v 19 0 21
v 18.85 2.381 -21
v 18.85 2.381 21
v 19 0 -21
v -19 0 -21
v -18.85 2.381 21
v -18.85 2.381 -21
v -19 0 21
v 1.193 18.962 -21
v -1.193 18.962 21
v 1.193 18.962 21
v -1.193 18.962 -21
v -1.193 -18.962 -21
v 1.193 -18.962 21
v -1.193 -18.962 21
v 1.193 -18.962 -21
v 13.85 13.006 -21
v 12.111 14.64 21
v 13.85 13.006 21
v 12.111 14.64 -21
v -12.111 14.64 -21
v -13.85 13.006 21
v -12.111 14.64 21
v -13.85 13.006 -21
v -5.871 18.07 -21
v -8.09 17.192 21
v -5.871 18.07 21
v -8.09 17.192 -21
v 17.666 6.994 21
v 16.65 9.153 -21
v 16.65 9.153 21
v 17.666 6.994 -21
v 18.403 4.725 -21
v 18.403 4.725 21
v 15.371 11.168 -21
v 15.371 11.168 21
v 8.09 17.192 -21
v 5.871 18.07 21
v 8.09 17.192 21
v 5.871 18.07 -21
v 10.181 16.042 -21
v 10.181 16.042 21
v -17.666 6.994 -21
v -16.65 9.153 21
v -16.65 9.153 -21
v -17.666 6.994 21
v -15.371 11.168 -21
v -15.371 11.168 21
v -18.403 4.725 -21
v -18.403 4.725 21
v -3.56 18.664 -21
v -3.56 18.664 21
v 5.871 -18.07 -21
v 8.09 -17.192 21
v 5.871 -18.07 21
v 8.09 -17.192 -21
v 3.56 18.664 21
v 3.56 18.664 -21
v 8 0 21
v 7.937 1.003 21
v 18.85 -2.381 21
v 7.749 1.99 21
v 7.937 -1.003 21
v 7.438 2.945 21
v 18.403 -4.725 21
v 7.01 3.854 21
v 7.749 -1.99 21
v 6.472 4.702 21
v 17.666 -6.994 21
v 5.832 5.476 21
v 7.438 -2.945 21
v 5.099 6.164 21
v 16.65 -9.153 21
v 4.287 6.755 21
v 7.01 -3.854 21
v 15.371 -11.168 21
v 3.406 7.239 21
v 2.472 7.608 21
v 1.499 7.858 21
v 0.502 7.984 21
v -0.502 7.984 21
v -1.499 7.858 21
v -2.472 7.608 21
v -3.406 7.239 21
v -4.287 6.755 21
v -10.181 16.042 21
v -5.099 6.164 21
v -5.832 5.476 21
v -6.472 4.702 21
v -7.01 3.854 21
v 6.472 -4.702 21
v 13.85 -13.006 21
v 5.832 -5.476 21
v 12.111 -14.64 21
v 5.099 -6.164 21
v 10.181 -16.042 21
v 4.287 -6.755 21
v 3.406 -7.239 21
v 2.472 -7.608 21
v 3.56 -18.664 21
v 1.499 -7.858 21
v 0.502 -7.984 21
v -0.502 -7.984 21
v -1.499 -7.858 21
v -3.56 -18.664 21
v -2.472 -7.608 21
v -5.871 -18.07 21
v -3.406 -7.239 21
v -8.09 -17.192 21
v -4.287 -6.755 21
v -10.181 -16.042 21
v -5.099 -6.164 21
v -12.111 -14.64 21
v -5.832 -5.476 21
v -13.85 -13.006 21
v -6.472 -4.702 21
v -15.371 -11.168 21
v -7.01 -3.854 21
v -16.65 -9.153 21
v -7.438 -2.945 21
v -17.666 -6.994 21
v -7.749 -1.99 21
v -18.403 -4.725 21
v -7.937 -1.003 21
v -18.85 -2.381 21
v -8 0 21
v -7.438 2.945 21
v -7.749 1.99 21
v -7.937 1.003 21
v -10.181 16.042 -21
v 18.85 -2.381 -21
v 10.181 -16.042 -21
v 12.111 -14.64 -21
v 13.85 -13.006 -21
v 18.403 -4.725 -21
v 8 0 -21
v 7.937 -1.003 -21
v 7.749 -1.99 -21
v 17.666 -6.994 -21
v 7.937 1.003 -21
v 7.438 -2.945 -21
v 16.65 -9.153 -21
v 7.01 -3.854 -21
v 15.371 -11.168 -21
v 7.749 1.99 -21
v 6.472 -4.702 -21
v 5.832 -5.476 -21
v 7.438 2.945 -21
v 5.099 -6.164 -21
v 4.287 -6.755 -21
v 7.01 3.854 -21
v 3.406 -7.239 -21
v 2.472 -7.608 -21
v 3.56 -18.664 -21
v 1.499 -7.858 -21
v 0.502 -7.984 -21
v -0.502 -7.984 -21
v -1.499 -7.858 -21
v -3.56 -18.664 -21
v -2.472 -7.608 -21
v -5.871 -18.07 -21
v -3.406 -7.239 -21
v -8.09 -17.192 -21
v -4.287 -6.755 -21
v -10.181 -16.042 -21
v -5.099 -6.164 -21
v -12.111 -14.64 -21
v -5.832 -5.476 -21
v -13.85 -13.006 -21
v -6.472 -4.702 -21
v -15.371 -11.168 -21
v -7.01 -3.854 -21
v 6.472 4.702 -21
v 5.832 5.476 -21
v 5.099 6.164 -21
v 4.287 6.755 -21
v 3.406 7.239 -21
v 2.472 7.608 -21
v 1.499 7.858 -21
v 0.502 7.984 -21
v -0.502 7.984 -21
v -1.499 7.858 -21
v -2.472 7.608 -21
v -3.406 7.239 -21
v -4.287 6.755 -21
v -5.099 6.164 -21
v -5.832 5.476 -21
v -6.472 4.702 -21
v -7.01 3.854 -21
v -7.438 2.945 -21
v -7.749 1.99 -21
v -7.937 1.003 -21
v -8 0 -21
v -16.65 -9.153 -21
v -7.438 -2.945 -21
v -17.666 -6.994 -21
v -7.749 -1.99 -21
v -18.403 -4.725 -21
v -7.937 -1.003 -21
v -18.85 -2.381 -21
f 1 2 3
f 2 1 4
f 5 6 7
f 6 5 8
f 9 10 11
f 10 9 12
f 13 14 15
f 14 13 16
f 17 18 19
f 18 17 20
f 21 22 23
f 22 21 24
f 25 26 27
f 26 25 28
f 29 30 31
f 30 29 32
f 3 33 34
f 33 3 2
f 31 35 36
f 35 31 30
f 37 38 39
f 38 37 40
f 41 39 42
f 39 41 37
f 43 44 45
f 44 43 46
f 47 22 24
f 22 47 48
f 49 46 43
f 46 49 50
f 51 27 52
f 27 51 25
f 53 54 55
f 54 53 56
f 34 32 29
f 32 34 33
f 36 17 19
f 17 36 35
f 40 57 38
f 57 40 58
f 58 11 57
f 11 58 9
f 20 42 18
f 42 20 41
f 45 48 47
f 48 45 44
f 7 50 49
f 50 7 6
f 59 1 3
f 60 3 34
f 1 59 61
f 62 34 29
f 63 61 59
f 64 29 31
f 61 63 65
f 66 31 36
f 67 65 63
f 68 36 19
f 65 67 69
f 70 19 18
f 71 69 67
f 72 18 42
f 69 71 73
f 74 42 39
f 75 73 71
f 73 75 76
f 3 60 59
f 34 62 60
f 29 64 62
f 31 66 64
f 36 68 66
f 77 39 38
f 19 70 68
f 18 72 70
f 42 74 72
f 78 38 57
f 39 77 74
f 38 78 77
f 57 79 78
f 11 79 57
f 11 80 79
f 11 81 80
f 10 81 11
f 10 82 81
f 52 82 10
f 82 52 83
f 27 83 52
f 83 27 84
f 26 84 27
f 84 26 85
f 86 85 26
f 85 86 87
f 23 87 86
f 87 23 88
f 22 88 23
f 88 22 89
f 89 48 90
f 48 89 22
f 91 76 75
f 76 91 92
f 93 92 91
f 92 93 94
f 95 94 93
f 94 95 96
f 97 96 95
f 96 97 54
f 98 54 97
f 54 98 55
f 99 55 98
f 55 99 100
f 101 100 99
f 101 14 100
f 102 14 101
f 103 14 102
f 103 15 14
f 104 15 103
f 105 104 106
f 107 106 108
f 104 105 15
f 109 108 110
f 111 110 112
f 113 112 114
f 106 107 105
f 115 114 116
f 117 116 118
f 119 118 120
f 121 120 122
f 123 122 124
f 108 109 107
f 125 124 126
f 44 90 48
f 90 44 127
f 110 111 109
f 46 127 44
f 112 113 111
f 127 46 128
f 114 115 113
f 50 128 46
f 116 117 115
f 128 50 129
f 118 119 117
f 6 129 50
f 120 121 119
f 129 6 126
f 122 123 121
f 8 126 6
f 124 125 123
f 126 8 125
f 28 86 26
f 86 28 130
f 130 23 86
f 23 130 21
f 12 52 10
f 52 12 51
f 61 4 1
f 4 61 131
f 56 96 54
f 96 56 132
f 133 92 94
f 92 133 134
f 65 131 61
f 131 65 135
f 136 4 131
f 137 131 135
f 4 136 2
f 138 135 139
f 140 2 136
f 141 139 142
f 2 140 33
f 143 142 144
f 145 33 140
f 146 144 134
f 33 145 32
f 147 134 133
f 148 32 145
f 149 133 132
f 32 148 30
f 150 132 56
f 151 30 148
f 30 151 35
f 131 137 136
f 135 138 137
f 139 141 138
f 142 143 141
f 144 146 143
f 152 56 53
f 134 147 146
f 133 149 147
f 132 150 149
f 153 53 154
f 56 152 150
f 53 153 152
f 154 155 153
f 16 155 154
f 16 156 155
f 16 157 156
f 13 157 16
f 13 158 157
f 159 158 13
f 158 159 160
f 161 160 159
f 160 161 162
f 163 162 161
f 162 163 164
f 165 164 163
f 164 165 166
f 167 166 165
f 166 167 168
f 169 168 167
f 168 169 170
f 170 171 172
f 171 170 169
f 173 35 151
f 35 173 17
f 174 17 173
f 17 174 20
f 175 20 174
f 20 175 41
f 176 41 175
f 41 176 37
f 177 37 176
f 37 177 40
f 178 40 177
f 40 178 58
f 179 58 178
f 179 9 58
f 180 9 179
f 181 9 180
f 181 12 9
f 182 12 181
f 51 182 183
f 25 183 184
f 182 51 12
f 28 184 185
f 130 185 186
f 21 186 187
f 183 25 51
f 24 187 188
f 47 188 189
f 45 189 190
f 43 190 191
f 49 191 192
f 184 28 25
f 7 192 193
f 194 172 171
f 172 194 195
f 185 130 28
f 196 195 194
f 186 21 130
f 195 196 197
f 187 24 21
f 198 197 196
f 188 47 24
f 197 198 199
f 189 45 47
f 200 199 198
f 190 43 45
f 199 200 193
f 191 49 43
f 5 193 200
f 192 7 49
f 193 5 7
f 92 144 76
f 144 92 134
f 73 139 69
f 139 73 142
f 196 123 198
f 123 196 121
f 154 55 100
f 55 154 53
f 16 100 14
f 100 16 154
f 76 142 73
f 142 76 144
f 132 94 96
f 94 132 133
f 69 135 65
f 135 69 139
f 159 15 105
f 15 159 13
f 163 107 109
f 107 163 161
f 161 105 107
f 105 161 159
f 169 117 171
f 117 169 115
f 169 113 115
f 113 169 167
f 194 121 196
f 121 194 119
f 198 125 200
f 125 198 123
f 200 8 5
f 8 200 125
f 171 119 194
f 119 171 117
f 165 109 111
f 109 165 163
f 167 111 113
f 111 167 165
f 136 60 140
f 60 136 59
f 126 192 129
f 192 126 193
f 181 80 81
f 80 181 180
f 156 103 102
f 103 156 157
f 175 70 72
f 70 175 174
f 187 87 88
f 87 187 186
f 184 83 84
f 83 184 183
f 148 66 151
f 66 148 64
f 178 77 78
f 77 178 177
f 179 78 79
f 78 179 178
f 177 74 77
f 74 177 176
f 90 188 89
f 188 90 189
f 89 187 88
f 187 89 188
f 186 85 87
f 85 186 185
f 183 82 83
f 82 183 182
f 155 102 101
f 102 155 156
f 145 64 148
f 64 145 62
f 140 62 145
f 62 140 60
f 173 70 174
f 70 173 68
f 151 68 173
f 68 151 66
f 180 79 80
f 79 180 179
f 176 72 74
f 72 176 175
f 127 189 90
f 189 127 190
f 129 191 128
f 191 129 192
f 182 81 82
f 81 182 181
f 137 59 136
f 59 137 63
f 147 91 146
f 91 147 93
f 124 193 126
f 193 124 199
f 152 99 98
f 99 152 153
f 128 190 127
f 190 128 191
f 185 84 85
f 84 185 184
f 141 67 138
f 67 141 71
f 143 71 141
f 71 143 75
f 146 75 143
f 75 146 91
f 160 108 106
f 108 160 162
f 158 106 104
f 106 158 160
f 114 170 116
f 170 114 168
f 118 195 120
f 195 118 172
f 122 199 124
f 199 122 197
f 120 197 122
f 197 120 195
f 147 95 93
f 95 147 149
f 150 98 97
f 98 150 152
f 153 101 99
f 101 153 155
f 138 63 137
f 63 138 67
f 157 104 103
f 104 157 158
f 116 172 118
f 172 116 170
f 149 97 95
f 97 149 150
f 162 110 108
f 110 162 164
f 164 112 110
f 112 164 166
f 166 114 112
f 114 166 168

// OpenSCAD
$fn = 50;


difference() {
	union() {
		translate(v = [0, 0, -21.0000000000]) {
			cylinder(h = 42, r = 19.0000000000);
		}
	}
	union() {
		translate(v = [0, 0, -100.0000000000]) {
			cylinder(h = 200, r = 8);
		}
	}
}
